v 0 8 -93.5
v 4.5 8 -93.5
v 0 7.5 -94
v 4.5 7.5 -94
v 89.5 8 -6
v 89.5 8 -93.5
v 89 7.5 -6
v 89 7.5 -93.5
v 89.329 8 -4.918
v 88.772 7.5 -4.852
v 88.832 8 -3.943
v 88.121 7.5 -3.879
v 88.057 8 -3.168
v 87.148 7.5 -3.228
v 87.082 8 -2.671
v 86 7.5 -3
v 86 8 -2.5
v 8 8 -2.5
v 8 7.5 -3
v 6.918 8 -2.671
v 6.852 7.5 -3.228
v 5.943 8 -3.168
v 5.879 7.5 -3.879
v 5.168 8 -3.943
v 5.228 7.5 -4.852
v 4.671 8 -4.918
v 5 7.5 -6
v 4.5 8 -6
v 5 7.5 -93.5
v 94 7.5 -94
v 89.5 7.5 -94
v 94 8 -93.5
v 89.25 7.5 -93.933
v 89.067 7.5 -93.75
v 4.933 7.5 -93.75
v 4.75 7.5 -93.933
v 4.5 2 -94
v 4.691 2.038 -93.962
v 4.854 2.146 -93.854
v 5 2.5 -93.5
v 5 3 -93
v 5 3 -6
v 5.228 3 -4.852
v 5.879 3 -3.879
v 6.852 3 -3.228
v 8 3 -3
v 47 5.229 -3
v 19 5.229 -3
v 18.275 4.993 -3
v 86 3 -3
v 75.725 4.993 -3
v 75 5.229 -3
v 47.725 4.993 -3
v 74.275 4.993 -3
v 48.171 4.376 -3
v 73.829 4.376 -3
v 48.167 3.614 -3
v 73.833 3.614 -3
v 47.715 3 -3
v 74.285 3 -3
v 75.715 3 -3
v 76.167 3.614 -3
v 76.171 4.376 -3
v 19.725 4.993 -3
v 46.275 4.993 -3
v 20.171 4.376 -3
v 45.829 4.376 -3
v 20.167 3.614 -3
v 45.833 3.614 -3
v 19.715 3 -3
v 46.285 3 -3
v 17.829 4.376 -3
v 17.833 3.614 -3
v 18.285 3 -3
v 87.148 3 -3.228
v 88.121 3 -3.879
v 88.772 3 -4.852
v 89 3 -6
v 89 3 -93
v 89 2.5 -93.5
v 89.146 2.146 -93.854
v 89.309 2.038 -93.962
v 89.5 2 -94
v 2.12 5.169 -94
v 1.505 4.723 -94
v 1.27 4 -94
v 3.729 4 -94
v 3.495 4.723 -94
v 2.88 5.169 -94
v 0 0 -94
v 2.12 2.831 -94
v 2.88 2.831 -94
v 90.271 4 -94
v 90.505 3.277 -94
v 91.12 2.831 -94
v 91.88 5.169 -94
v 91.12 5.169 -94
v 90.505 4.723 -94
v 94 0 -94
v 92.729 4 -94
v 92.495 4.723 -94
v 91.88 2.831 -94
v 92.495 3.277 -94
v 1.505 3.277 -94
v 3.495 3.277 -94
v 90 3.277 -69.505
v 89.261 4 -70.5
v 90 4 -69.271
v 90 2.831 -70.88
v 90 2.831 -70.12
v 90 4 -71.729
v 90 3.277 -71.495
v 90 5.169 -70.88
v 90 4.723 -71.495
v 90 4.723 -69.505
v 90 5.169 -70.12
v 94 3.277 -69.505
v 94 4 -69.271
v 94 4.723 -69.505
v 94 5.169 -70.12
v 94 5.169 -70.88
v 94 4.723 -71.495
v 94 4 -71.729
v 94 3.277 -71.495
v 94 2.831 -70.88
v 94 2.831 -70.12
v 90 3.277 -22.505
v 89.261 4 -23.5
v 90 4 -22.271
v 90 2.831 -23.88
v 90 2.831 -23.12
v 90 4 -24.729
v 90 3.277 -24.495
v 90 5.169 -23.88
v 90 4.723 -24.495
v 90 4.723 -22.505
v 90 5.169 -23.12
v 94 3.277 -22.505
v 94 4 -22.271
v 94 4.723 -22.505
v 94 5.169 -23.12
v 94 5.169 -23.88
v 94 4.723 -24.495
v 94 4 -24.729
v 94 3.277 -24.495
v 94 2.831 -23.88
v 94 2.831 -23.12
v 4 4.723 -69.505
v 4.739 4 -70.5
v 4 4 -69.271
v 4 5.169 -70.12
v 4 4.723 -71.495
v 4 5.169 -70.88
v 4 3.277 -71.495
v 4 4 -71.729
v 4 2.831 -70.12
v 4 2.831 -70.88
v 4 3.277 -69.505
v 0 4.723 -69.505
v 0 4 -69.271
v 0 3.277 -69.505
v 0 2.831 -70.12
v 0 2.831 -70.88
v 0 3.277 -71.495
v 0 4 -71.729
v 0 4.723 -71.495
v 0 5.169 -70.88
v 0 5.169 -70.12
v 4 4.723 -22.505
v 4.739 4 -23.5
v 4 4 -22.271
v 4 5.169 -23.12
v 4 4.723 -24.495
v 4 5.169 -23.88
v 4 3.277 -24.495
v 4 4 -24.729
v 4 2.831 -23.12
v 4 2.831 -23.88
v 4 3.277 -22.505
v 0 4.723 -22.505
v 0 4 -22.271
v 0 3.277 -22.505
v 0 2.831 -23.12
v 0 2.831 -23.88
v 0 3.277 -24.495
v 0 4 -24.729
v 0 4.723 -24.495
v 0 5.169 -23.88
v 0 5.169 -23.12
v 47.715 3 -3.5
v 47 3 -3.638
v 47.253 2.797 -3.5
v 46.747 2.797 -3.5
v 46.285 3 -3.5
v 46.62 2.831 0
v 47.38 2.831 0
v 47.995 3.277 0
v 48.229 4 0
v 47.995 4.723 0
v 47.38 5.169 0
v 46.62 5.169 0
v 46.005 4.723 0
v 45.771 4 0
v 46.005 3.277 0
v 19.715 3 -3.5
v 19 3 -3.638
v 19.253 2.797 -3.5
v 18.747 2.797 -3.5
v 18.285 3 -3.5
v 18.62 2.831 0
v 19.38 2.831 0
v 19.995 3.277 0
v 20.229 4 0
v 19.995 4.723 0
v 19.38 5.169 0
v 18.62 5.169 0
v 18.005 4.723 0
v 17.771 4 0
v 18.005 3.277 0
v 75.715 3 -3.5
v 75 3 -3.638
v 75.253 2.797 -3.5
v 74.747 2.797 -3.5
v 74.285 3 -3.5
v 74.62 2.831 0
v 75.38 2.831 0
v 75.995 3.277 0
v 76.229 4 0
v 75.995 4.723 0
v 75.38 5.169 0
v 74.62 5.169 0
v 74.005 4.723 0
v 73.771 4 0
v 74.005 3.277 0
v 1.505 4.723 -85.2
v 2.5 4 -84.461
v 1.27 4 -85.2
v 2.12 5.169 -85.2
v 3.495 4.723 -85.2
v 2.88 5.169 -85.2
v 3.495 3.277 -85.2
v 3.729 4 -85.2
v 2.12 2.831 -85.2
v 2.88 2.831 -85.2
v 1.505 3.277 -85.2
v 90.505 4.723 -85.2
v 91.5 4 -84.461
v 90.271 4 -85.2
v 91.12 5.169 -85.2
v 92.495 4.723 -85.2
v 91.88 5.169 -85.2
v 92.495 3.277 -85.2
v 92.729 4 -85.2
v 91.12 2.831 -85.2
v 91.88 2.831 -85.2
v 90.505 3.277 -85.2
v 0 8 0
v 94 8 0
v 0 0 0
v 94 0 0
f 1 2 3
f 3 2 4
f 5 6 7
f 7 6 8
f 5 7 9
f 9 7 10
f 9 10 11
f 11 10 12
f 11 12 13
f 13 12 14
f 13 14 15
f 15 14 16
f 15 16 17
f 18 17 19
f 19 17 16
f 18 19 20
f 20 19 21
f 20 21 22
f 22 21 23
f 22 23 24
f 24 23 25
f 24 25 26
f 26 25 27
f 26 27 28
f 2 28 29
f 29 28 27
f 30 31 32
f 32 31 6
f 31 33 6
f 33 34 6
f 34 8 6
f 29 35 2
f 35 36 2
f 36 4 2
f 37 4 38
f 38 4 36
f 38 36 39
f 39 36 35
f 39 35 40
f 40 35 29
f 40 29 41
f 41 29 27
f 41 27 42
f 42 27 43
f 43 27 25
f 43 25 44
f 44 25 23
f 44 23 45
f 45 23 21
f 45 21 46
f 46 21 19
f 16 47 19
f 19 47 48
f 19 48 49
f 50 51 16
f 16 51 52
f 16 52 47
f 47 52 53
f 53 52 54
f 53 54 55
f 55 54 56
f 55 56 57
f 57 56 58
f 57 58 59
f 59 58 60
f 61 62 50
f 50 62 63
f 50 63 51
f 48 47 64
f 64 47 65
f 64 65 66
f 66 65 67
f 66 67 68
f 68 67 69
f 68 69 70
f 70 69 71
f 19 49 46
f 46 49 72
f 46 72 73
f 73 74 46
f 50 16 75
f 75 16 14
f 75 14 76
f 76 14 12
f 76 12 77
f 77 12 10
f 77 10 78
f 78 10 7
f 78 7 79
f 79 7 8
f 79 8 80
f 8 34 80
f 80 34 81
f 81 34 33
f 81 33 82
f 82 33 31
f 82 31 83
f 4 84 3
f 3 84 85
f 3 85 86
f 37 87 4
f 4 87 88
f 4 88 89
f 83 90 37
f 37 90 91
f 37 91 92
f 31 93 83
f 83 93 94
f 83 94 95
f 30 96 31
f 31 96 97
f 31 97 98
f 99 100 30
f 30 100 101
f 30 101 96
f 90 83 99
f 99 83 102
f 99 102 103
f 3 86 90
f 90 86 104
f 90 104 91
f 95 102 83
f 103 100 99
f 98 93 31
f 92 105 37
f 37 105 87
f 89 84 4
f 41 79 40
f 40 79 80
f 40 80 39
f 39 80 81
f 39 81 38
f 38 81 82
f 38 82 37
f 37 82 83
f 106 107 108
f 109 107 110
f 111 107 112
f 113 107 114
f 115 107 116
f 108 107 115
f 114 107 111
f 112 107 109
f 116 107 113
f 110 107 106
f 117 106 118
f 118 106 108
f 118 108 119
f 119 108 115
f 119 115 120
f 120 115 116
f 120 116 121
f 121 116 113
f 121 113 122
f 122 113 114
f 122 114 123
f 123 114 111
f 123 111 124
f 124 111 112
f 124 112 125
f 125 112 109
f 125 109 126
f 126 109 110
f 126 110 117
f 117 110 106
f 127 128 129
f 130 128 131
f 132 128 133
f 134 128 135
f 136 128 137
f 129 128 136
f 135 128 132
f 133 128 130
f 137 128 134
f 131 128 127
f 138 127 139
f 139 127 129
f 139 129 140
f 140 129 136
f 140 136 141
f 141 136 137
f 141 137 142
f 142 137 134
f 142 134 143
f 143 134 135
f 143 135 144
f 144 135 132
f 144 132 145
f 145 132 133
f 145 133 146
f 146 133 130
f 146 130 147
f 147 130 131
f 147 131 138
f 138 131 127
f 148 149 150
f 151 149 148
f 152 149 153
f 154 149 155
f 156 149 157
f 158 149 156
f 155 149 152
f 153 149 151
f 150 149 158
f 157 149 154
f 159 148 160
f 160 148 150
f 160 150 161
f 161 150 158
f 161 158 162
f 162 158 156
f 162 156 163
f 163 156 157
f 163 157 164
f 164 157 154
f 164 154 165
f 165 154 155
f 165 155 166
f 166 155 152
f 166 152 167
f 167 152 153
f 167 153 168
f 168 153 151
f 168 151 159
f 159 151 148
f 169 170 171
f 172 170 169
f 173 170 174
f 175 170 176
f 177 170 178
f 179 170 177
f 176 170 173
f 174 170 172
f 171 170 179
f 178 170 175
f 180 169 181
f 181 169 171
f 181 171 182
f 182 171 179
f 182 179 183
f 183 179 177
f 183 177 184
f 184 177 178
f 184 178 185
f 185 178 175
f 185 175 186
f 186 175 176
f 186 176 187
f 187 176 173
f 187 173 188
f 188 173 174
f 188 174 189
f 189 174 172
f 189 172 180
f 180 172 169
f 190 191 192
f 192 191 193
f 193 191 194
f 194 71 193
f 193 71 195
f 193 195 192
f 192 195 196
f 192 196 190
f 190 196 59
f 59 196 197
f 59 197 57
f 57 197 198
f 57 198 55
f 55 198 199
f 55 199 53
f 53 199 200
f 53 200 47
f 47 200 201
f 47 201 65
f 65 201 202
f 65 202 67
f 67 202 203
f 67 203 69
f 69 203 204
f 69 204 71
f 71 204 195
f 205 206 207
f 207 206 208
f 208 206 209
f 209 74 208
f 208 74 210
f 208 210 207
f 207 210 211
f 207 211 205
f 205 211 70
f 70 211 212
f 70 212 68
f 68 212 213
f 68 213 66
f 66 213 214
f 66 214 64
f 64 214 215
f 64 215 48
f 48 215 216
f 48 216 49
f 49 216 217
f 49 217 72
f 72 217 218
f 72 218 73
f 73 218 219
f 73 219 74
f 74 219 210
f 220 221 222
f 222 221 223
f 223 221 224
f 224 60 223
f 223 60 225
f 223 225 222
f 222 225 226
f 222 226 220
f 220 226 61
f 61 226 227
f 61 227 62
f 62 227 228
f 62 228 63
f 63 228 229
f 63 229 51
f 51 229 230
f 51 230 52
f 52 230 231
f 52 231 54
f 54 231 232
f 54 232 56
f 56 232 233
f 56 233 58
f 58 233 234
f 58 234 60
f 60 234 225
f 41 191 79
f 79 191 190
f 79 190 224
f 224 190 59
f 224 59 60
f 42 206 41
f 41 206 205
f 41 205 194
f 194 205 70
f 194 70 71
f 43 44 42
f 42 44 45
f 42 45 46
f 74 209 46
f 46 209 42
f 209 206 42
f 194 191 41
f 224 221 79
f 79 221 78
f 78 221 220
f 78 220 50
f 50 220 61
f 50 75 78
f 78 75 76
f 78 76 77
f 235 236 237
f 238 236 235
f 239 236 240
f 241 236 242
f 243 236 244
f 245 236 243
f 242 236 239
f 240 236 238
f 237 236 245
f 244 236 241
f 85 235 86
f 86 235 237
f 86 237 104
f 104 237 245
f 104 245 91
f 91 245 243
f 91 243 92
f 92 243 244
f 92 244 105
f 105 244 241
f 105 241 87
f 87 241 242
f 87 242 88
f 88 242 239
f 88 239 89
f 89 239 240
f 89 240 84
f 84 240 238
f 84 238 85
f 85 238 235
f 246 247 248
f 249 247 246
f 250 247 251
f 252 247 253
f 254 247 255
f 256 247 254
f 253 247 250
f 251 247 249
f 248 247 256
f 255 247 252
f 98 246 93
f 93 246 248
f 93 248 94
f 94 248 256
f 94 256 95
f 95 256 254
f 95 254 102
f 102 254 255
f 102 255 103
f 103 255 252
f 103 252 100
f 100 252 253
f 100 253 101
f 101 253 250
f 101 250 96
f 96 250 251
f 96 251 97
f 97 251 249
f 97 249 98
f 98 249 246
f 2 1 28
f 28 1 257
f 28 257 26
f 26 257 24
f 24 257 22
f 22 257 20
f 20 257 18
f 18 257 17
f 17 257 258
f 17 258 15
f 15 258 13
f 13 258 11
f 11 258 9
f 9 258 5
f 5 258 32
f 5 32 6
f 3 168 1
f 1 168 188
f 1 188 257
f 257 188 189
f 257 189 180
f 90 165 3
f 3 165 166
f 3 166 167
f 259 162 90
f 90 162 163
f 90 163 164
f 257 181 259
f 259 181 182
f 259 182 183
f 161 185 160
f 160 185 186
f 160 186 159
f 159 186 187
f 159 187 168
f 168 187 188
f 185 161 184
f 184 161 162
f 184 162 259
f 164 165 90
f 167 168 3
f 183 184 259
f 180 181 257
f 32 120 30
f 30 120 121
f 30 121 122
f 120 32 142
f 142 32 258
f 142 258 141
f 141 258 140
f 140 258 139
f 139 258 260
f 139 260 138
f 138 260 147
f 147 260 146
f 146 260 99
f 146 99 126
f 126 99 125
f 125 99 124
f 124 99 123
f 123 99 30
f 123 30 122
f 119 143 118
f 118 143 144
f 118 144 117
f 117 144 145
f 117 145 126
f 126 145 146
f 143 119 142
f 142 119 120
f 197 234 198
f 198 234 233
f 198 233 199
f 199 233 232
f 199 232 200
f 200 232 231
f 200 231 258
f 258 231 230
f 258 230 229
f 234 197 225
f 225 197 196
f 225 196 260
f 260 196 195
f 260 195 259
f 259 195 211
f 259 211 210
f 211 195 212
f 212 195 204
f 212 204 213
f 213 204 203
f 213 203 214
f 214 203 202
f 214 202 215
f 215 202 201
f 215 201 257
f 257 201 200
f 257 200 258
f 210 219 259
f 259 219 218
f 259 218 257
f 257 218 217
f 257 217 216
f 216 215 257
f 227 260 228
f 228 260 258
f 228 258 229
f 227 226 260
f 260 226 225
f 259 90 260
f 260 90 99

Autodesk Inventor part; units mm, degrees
ref_plane "YZ Plane" through (0, 0, 0) normal (1, 0, 0) x (0, 1, 0)
ref_plane "XZ Plane" through (0, 0, 0) normal (0, 1, 0) x (-1, 0, 0)
sketch "Sketch3" plane through (0, 0, 0) normal (0, 1, 0) x (-1, 0, 0)
  line L0 (3, 3) -> (-97, 3) construction
  line L1 (-97, 3) -> (-97, 0) construction
  line L2 (-97, 0) -> (3, 0) construction
  line L3 (3, 0) -> (3, 3) construction
  line L4 (-97, 0) -> (-94, 0) construction
  line L5 (-94, 0) -> (-94, -94) construction
  line L6 (-94, -94) -> (-97, -94) construction
  line L7 (-97, -94) -> (-97, 0) construction
  line L8 (-97, -94) -> (3, -94) construction
  line L9 (3, -94) -> (3, -97) construction
  line L10 (3, -97) -> (-97, -97) construction
  line L11 (-97, -97) -> (-97, -94) construction
  line L12 (3, -94) -> (0, -94) construction
  line L13 (0, -94) -> (0, 0) construction
  line L14 (0, 0) -> (3, 0) construction
  line L15 (3, 0) -> (3, -94) construction
  line L16 (0, -94) -> (-94, -94)
  line L17 (-94, -94) -> (-94, 0)
  line L18 (-94, 0) -> (0, 0)
  line L19 (0, 0) -> (0, -94)
  line L20 (3, 3) -> (3, 0) construction
  dimension "d6" = 3
  dimension "d7" = 100
  dimension "d8" = 100
  dimension "d9" = 3
extrude "Extrusion2" add sketch "Sketch3" along normal blind 3
sketch "Sketch4" plane through (0, 3, 0) normal (0, 1, 0) x (1, 0, 0)
  line L0 (94, 94) -> (0, 94) projected
  line L1 (0, 0) -> (94, 0) projected
  line L2 (0, 94) -> (5, 94)
  line L3 (5, 94) -> (5, 0)
  line L4 (5, 0) -> (0, 0)
  line L5 (0, 0) -> (0, 94)
  line L6 (94, 0) -> (94, 94) projected
  line L7 (94, 94) -> (89, 94)
  line L8 (89, 94) -> (89, 0)
  line L9 (89, 0) -> (94, 0)
  line L10 (94, 0) -> (94, 94)
  line L11 (5, 3) -> (89, 3)
  line L12 (89, 3) -> (89, 0)
  line L13 (89, 0) -> (5, 0)
  line L14 (5, 0) -> (5, 3)
  dimension "d12" = 5
  dimension "d13" = 3
extrude "Extrusion3" add sketch "Sketch4" along normal blind 5 contours L6 L1 L8 L0 | L3 L1 L5 L0 | L8 L1 L3 L11
sketch "Sketch6" plane through (94, 0, -94) normal (0, 0, -1) x (-1, 0, 0)
  line L0 (0, 0) -> (94, 0) projected
  line L1 (89, 8) -> (94, 8) projected
  line L2 (89, 3) -> (89, 8) projected
  line L3 (94, 0) -> (94, 8) projected
  line L4 (0, 0) -> (0, 8) projected
  point P0 (91.5, 4)
  point P1 (2.5, 4)
  dimension "d28" = 8
  dimension "d29" = 5
  dimension "d30" = 2.5
  dimension "d31" = 4
  dimension "d32" = 2.5
hole "Hole1" at (2.5, 4, -94) at (91.5, 4, -94) direction (0, 0, 1) diameter 2.459 depth 8.8 tip angle 118 thread size "M3x0.5" class "6H" standard "ANSI Metric M Profile"
fillet "Fillet1" radius 3 2 edges at (89, 5.5, -3) (5, 5.5, -3)
fillet "Fillet2" radius 0.5 2 edges at (5, 5.5, -94) (89, 5.5, -94)
sketch "Sketch7" plane through (0, 0, 0) normal (0, 0, 1) x (1, 0, 0)
  line L0 (0, 0) -> (94, 0) projected
  line L1 (0, 0) -> (0, 8) projected
  line L2 (89, 8) -> (5, 8) projected
  point P0 (19, 4)
  point P1 (47, 4)
  point P2 (75, 4)
  dimension "d40" = 4
  dimension "d57" = 84
  dimension "d58" = 14
  dimension "d59" = 28
  dimension "d60" = 28
hole "Hole2" at (19, 4, 0) at (47, 4, 0) at (75, 4, 0) direction (0, 0, -1) diameter 2.459 depth 3.5 tip angle 118 thread size "M3x0.5" class "6H" standard "ANSI Metric M Profile"
sketch "Sketch9" plane through (0, 0, -94) normal (-1, 0, 0) x (0, 0, 1)
  line L0 (0, 8) -> (94, 8) projected
  line L1 (0, 0) -> (94, 0) projected
  line L2 (0, 0) -> (0, 8) projected
  point P0 (23.5, 4)
  point P1 (70.5, 4)
  dimension "d51" = 4
  dimension "d52" = 8
  dimension "d53" = 94
  dimension "d54" = 23.5
  dimension "d55" = 47
hole "Hole3" at (0, 4, -70.5) at (0, 4, -23.5) direction (1, 0, 0) diameter 2.459 depth 4 tip angle 118 thread size "M3x0.5" class "6H" standard "ANSI Metric M Profile"
ref_plane "Work Plane1" through (47, 0, -94) normal (-1, 0, 0) x (0, 0, 1)
mirror "Mirror1" about plane through (47, 0, -94) normal (-1, 0, 0) of "Hole3"
chamfer "Chamfer2" distance 1 angle 45 1 edges at (47, 3, -94)
chamfer "Chamfer3" distance 0.5 angle 45 3 edges at (5, 8, -49.75) (47, 8, -3) (89, 8, -49.75)
ref_plane "Work Plane2" through (47, 0, -94) normal (-1, 0, 0) x (0, 0, 1)
equation "\"d30\" = 0.5 * d29"
equation "\"d31\" = 0.5 * d28"
equation "\"d32\" = d30"
equation "\"d58\" = 0.166667 * d57"
equation "\"d59\" = 2 * d58"
equation "\"d60\" = d59"
equation "\"d51\" = 0.5 * d52"
equation "\"d54\" = 0.25 * d53"
equation "\"d55\" = 2 * d54"
properties part number "LeftPanel" material "Aluminum 6061"
